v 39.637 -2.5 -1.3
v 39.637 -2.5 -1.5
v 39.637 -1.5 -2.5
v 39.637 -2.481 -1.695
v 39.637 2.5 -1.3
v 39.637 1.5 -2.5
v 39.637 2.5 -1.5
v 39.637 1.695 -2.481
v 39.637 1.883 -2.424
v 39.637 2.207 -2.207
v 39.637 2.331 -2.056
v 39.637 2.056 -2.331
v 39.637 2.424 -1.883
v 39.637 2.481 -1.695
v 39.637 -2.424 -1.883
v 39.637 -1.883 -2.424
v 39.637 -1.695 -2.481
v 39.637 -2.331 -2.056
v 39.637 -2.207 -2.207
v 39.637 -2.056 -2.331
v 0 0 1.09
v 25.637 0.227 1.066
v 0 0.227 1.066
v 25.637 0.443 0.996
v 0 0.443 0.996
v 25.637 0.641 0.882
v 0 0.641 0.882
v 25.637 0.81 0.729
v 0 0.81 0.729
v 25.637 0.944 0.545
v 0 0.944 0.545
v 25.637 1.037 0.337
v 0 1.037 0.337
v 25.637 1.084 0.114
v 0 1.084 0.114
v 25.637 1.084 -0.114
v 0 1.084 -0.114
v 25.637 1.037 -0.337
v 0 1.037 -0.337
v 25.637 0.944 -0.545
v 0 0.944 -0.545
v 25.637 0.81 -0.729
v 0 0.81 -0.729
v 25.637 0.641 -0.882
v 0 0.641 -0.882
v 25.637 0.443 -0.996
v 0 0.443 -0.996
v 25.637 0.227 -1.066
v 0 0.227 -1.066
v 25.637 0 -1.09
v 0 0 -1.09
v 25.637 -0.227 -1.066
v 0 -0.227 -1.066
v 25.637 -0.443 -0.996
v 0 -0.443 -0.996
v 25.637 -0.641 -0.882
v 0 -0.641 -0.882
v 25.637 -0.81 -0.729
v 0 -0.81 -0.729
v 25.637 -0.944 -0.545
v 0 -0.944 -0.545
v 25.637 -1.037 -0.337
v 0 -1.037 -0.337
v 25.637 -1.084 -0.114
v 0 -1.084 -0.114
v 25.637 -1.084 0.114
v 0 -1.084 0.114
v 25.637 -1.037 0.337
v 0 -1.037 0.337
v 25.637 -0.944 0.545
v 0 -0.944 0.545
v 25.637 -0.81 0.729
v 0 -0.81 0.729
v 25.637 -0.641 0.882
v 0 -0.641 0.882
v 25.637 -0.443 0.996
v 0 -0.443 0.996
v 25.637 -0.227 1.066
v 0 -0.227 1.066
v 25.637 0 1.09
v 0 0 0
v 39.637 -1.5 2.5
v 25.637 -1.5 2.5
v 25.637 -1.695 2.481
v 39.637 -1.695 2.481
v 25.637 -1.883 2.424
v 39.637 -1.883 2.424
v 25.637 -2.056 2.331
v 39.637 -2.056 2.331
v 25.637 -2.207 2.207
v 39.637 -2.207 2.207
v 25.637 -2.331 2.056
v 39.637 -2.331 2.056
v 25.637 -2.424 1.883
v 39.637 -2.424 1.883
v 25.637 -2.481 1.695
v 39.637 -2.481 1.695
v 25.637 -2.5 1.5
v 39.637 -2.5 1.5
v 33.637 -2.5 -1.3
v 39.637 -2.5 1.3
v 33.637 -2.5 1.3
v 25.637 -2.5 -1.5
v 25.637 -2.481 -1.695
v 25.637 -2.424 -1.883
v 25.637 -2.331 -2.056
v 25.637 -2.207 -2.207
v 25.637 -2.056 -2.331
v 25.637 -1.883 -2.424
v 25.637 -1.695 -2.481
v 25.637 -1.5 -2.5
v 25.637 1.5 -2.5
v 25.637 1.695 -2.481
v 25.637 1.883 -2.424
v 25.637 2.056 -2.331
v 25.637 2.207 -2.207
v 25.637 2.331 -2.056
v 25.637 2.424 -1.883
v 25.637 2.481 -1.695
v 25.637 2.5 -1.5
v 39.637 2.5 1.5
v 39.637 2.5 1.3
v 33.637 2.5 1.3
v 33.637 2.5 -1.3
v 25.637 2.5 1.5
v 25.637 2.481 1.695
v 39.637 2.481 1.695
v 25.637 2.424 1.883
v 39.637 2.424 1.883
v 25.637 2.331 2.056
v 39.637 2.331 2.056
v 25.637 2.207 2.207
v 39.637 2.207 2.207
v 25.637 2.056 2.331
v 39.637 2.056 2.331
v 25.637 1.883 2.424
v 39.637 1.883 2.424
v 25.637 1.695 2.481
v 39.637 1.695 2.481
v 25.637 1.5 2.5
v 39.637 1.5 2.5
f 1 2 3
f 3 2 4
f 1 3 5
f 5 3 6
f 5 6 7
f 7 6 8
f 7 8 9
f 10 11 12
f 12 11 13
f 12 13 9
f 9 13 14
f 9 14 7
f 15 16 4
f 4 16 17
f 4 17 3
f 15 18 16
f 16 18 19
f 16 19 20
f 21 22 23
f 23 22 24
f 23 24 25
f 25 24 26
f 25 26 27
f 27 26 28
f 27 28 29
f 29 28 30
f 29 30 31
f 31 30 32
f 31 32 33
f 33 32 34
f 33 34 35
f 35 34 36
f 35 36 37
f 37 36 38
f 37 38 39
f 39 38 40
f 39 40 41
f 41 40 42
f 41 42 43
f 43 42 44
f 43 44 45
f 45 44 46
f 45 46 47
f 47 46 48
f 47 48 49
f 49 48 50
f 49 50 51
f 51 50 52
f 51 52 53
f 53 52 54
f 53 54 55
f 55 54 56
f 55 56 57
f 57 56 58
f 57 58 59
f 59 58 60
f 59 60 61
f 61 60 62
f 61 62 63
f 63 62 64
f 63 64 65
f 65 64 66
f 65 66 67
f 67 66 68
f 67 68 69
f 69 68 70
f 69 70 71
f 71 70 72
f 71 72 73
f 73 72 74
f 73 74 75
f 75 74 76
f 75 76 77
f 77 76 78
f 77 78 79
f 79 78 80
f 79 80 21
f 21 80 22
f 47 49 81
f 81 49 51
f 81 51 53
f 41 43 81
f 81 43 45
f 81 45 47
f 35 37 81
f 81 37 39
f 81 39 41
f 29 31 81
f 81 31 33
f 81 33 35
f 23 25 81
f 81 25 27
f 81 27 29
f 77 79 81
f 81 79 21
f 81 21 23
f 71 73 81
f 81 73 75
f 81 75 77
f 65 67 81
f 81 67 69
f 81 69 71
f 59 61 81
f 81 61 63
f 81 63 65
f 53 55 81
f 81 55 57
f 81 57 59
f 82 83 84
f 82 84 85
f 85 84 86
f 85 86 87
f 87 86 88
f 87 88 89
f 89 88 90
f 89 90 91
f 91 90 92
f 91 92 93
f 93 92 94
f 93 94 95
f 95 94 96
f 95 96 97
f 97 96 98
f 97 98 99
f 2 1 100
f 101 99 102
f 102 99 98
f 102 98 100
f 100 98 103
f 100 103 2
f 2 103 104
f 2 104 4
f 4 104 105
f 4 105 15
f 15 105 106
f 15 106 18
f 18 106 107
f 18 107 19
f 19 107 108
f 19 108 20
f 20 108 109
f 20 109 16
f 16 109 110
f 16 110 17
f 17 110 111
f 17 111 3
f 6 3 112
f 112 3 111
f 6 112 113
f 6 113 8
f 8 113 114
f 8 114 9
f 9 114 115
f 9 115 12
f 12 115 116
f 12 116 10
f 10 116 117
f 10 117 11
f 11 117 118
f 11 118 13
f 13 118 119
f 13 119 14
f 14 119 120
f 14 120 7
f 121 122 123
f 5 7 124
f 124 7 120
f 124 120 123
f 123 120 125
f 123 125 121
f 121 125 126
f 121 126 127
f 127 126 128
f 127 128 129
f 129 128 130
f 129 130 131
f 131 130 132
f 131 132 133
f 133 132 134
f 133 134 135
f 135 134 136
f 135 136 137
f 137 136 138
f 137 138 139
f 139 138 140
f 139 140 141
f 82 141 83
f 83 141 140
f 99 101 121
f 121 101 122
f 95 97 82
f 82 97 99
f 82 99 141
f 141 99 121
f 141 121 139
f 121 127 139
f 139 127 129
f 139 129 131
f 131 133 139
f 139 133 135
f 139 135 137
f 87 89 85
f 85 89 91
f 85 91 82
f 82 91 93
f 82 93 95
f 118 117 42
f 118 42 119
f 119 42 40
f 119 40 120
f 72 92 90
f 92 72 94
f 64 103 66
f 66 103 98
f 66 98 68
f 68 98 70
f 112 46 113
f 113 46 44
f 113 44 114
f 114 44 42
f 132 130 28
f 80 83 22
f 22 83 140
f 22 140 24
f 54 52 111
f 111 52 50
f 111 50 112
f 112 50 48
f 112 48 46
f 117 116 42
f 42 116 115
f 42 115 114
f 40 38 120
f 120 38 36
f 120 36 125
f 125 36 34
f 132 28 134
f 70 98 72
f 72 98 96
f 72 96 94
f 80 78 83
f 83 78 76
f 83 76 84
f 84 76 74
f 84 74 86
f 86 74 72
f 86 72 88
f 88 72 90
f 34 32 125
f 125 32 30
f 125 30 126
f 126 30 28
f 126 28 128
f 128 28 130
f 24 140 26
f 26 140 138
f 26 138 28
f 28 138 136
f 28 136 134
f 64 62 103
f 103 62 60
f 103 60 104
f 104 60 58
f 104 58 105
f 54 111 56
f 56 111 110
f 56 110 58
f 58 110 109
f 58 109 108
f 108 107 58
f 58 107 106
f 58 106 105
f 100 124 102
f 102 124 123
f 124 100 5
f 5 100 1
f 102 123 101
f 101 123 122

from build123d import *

# Parameters (mm, degrees)
SKETCH1_R               = 1.09
BOSS_EXTRUDE1_DEPTH     = 27.637
BOSS_EXTRUDE2_DEPTH     = 14
CUT_EXTRUDE1_DEPTH      = 40.794368559
CUT_EXTRUDE1_DEPTH_BACK = 40.794368559
SKETCH3_W               = 7
SKETCH3_H               = 2.6


with BuildPart() as part:
    # Sketch1 → Boss-Extrude1 (new body)
    with BuildSketch(Plane(origin=(0, 0, 0), x_dir=(0, 0, -1), z_dir=(1, 0, 0))):
        with Locations(Location((0, 0, 0), (0, 0, 180))):
            Circle(SKETCH1_R)
    extrude(amount=BOSS_EXTRUDE1_DEPTH)

    # Sketch2 → Boss-Extrude2 (add)
    with BuildSketch(Plane(origin=(25.637, 0, 0), x_dir=(0, 0, -1), z_dir=(1, 0, 0))):
        with BuildLine():
            Line((-1.5, -2.5), (1.5, -2.5))
            ThreePointArc((1.5, -2.5), (2.207106781, -2.207106781), (2.5, -1.5))
            Line((2.5, -1.5), (2.5, 1.5))
            ThreePointArc((2.5, 1.5), (2.207106781, 2.207106781), (1.5, 2.5))
            Line((1.5, 2.5), (-1.5, 2.5))
            ThreePointArc((-1.5, 2.5), (-2.207106781, 2.207106781), (-2.5, 1.5))
            Line((-2.5, 1.5), (-2.5, -1.5))
            ThreePointArc((-2.5, -1.5), (-2.207106781, -2.207106781), (-1.5, -2.5))
        make_face()
    extrude(amount=BOSS_EXTRUDE2_DEPTH)

    # Sketch3 → Cut-Extrude1 (cut, two sides: drawn at the far end of the back side and taken through both)
    with BuildSketch(Plane(origin=(0, 0, 0), x_dir=(1, 0, 0), z_dir=(0, 1, 0)).offset(-CUT_EXTRUDE1_DEPTH_BACK)):
        with Locations((37.137, 0)):
            Rectangle(SKETCH3_W, SKETCH3_H)
    extrude(amount=CUT_EXTRUDE1_DEPTH + CUT_EXTRUDE1_DEPTH_BACK, mode=Mode.SUBTRACT)


solid = part.part
